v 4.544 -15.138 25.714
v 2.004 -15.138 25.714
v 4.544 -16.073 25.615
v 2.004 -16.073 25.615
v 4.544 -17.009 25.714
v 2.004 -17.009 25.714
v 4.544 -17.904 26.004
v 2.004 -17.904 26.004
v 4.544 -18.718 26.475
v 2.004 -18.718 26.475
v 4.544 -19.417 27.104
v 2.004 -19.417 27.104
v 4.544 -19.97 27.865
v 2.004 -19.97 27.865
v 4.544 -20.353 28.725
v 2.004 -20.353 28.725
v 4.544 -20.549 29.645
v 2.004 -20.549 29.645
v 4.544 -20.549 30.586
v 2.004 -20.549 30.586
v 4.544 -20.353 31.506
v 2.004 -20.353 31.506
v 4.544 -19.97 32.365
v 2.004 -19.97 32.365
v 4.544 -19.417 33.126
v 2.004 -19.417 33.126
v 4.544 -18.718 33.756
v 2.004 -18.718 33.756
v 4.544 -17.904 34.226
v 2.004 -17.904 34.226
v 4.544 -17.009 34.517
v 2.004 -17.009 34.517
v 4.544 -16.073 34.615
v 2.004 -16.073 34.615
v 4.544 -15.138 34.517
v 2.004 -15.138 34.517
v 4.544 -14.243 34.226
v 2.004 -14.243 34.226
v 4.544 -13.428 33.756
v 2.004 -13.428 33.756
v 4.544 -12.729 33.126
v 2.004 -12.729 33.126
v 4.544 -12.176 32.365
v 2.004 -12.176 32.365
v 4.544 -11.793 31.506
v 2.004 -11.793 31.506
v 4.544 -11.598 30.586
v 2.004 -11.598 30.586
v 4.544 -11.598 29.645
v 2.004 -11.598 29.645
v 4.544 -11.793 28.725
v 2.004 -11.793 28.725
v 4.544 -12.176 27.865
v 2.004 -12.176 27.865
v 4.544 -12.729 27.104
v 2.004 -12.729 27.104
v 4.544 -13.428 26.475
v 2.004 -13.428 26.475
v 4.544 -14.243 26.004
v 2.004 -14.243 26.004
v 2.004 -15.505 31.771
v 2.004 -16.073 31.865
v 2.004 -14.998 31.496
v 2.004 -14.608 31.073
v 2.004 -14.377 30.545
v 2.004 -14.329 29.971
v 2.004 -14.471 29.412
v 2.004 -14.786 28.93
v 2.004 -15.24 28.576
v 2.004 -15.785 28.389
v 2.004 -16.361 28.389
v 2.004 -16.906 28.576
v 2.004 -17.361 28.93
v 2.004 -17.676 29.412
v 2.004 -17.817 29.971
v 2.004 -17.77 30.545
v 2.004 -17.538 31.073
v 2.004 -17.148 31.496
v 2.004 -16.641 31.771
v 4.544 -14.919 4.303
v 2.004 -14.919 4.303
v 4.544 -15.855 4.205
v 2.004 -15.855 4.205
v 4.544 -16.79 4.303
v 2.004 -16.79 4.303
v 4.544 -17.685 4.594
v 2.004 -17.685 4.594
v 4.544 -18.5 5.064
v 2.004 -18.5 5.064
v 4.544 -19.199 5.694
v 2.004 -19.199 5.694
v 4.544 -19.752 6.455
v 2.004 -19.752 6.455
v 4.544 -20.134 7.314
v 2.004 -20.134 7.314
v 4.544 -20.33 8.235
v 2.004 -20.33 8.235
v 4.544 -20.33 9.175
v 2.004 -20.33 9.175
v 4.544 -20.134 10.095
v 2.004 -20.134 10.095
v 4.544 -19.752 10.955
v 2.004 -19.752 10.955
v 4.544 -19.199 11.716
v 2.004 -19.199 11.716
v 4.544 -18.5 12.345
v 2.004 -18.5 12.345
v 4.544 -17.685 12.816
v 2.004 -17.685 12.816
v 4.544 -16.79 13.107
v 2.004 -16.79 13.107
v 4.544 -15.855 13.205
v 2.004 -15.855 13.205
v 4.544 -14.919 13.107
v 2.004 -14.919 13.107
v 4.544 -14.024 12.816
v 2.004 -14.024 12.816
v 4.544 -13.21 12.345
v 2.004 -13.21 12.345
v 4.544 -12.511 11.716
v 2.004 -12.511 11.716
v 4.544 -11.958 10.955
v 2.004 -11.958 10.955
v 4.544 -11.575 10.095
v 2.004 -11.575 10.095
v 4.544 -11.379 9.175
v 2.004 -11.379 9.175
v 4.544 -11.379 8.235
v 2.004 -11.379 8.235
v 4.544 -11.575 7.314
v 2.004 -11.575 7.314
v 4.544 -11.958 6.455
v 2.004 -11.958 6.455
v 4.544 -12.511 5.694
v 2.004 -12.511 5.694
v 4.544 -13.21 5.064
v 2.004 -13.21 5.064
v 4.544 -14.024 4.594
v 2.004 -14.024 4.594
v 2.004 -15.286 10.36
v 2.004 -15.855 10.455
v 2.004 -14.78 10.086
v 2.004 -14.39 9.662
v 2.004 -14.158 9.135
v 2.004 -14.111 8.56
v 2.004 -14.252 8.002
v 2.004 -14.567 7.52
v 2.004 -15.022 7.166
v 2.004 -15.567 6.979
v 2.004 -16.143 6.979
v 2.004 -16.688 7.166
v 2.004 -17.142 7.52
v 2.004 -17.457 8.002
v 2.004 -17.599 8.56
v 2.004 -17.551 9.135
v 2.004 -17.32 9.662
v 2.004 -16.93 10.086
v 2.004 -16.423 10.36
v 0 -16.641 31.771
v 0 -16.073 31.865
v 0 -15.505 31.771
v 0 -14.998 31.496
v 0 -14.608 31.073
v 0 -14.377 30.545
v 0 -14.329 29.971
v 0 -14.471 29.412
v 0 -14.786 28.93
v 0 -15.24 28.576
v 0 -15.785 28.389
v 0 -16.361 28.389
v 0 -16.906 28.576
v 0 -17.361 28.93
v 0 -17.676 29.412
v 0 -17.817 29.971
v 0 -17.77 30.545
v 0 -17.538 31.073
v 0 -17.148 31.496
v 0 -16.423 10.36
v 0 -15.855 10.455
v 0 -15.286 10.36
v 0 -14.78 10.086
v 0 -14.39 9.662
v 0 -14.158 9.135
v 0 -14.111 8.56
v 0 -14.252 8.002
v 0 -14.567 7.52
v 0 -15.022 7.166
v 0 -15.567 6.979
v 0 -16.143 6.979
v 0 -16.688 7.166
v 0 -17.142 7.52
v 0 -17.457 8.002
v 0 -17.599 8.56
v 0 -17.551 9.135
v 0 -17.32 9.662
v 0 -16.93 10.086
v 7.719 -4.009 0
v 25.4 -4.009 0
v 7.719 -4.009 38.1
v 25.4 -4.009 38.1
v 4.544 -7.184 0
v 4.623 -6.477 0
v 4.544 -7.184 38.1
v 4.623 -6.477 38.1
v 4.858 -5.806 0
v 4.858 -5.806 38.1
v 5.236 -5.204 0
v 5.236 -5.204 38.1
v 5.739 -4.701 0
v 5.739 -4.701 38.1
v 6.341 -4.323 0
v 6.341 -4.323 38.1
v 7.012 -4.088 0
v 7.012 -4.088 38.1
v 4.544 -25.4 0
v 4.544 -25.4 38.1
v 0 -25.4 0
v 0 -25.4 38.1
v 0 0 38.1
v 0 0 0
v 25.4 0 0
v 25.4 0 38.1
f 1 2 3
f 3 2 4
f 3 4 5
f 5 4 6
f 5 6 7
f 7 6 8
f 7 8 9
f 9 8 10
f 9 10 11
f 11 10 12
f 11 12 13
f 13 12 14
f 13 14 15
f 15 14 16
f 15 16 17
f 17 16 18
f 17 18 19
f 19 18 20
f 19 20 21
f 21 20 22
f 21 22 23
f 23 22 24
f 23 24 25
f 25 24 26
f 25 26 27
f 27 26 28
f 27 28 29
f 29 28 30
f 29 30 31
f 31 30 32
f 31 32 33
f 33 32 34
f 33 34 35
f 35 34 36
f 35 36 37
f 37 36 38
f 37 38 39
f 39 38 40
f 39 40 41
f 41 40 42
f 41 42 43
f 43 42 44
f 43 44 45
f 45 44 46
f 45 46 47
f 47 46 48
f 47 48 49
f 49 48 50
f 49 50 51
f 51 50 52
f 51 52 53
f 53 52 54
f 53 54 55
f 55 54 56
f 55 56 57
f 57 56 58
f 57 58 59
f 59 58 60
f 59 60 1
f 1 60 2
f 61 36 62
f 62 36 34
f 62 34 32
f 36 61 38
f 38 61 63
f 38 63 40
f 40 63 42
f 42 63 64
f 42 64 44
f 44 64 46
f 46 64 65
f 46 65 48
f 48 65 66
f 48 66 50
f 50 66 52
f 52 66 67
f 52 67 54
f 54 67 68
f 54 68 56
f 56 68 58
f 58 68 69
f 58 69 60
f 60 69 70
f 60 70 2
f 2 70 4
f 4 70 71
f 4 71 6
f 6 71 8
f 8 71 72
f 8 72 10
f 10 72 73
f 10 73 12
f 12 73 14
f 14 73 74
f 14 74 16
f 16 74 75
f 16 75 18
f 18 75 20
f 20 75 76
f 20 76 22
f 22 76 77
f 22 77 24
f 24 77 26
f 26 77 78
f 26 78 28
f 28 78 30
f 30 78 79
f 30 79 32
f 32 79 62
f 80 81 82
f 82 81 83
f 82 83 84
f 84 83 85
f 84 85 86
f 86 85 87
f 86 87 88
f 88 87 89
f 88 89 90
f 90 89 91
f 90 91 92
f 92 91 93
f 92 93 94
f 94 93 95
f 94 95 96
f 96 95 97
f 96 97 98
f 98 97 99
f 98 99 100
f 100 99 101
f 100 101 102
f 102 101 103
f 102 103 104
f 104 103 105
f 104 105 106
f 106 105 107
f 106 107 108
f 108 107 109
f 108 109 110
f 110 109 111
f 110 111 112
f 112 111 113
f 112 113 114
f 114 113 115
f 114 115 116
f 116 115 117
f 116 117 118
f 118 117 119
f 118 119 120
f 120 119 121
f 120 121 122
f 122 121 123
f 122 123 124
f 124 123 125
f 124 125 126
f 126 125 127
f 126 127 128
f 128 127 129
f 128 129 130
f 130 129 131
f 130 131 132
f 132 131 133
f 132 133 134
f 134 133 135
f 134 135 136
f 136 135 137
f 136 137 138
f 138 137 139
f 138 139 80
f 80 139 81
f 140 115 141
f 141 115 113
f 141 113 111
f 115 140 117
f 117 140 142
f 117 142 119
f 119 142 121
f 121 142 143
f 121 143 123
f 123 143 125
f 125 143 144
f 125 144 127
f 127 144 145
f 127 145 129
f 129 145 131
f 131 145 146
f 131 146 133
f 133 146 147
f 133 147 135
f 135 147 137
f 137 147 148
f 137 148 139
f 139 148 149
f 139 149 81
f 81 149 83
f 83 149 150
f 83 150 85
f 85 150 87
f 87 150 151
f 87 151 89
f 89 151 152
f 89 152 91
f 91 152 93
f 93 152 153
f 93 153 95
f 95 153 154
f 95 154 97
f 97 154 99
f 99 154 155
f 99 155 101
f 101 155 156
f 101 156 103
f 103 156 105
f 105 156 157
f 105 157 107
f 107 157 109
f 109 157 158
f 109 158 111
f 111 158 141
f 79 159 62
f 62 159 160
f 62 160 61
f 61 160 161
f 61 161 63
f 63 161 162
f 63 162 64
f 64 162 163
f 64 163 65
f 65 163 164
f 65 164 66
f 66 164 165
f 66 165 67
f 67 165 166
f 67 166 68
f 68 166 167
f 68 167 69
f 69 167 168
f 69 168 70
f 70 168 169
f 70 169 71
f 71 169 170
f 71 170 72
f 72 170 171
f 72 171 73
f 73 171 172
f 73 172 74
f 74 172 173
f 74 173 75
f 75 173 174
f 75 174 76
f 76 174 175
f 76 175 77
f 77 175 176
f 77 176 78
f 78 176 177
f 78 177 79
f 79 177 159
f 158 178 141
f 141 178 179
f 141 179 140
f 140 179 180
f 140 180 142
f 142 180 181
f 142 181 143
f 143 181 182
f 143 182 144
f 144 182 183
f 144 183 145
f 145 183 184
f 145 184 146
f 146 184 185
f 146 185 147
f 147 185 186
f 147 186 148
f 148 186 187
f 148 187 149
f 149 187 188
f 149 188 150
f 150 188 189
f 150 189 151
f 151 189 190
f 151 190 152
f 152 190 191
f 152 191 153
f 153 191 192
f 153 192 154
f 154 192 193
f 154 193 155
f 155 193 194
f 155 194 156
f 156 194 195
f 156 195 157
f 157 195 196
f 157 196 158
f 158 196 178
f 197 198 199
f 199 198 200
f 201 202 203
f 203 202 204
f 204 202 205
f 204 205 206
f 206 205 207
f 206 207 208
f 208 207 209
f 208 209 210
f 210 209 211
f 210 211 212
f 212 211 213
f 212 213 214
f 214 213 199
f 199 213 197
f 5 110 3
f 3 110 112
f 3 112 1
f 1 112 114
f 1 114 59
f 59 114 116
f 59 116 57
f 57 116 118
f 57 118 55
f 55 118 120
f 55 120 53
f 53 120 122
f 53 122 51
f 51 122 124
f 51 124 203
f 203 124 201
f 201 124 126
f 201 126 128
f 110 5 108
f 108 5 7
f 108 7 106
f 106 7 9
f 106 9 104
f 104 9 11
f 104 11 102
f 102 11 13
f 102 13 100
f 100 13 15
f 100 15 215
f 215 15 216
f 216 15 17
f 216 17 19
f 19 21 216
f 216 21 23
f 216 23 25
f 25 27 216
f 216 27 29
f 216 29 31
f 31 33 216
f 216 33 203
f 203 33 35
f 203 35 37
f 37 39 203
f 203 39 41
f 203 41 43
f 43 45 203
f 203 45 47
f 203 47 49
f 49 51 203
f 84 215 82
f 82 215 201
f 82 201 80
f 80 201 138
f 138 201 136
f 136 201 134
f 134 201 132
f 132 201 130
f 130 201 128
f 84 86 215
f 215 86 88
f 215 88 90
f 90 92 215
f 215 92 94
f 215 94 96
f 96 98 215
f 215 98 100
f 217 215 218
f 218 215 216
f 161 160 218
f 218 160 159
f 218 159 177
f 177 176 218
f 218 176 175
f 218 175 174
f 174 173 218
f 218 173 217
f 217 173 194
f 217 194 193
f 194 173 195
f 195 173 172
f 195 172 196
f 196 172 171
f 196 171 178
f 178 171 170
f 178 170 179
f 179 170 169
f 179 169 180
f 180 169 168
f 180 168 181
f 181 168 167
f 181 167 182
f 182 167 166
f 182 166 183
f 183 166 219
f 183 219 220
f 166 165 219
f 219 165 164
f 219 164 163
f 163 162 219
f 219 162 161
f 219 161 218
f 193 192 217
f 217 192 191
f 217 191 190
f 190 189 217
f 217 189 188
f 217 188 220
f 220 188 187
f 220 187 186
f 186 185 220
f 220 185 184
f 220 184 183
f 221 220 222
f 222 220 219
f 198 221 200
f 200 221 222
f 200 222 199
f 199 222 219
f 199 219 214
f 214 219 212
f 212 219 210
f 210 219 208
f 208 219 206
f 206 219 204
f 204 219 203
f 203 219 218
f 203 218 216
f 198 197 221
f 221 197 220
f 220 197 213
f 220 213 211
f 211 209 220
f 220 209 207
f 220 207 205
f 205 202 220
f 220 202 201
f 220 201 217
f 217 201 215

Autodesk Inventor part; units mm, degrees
ref_plane "YZ Plane" through (0, 0, 0) normal (1, 0, 0) x (0, 1, 0)
ref_plane "XZ Plane" through (0, 0, 0) normal (0, 1, 0) x (-1, 0, 0)
ref_plane "XY Plane" through (0, 0, 0) normal (0, 0, 1) x (1, 0, 0)
sketch "Sketch1" plane through (0, 0, 0) normal (0, 0, 1) x (1, 0, 0)
  line L0 (0, 0) -> (25.4, 0)
  line L1 (25.4, 0) -> (25.4, -4.0087)
  line L2 (0, -25.4) -> (0, 0)
  line L3 (4.5437, -25.4) -> (0, -25.4)
  line L4 (4.5437, -25.4) -> (4.5437, -7.1837)
  line L5 (7.7187, -4.0087) -> (25.4, -4.0087)
  arc A0 (7.7187, -4.0087) -> (4.5437, -7.1837) centre (7.7187, -7.1837) ccw
  dimension "d3" = 3.175
extrude "Extrusion1" add sketch "Sketch1" along normal blind 38.1
sketch "Sketch2" plane through (4.5437, -25.4, 0) normal (1, 0, 0) x (0, 0, -1)
  circle A0 centre (-30.1153, 9.3268) radius 1.75
  circle A1 centre (-8.7049, 9.5453) radius 1.75
  point P0 (0, 25.4)
  dimension "d6" = 3.5
  dimension "d7" = 3.5
extrude "Extrusion2" cut sketch "Sketch2" against normal blind 38.1
hole "Hole1" at (4.5437, -16.0732, 30.1153) at (4.5437, -15.8547, 8.7049) direction (-1, 0, 0) diameter 9 depth 2.54
properties part number "Gyro Mount"
